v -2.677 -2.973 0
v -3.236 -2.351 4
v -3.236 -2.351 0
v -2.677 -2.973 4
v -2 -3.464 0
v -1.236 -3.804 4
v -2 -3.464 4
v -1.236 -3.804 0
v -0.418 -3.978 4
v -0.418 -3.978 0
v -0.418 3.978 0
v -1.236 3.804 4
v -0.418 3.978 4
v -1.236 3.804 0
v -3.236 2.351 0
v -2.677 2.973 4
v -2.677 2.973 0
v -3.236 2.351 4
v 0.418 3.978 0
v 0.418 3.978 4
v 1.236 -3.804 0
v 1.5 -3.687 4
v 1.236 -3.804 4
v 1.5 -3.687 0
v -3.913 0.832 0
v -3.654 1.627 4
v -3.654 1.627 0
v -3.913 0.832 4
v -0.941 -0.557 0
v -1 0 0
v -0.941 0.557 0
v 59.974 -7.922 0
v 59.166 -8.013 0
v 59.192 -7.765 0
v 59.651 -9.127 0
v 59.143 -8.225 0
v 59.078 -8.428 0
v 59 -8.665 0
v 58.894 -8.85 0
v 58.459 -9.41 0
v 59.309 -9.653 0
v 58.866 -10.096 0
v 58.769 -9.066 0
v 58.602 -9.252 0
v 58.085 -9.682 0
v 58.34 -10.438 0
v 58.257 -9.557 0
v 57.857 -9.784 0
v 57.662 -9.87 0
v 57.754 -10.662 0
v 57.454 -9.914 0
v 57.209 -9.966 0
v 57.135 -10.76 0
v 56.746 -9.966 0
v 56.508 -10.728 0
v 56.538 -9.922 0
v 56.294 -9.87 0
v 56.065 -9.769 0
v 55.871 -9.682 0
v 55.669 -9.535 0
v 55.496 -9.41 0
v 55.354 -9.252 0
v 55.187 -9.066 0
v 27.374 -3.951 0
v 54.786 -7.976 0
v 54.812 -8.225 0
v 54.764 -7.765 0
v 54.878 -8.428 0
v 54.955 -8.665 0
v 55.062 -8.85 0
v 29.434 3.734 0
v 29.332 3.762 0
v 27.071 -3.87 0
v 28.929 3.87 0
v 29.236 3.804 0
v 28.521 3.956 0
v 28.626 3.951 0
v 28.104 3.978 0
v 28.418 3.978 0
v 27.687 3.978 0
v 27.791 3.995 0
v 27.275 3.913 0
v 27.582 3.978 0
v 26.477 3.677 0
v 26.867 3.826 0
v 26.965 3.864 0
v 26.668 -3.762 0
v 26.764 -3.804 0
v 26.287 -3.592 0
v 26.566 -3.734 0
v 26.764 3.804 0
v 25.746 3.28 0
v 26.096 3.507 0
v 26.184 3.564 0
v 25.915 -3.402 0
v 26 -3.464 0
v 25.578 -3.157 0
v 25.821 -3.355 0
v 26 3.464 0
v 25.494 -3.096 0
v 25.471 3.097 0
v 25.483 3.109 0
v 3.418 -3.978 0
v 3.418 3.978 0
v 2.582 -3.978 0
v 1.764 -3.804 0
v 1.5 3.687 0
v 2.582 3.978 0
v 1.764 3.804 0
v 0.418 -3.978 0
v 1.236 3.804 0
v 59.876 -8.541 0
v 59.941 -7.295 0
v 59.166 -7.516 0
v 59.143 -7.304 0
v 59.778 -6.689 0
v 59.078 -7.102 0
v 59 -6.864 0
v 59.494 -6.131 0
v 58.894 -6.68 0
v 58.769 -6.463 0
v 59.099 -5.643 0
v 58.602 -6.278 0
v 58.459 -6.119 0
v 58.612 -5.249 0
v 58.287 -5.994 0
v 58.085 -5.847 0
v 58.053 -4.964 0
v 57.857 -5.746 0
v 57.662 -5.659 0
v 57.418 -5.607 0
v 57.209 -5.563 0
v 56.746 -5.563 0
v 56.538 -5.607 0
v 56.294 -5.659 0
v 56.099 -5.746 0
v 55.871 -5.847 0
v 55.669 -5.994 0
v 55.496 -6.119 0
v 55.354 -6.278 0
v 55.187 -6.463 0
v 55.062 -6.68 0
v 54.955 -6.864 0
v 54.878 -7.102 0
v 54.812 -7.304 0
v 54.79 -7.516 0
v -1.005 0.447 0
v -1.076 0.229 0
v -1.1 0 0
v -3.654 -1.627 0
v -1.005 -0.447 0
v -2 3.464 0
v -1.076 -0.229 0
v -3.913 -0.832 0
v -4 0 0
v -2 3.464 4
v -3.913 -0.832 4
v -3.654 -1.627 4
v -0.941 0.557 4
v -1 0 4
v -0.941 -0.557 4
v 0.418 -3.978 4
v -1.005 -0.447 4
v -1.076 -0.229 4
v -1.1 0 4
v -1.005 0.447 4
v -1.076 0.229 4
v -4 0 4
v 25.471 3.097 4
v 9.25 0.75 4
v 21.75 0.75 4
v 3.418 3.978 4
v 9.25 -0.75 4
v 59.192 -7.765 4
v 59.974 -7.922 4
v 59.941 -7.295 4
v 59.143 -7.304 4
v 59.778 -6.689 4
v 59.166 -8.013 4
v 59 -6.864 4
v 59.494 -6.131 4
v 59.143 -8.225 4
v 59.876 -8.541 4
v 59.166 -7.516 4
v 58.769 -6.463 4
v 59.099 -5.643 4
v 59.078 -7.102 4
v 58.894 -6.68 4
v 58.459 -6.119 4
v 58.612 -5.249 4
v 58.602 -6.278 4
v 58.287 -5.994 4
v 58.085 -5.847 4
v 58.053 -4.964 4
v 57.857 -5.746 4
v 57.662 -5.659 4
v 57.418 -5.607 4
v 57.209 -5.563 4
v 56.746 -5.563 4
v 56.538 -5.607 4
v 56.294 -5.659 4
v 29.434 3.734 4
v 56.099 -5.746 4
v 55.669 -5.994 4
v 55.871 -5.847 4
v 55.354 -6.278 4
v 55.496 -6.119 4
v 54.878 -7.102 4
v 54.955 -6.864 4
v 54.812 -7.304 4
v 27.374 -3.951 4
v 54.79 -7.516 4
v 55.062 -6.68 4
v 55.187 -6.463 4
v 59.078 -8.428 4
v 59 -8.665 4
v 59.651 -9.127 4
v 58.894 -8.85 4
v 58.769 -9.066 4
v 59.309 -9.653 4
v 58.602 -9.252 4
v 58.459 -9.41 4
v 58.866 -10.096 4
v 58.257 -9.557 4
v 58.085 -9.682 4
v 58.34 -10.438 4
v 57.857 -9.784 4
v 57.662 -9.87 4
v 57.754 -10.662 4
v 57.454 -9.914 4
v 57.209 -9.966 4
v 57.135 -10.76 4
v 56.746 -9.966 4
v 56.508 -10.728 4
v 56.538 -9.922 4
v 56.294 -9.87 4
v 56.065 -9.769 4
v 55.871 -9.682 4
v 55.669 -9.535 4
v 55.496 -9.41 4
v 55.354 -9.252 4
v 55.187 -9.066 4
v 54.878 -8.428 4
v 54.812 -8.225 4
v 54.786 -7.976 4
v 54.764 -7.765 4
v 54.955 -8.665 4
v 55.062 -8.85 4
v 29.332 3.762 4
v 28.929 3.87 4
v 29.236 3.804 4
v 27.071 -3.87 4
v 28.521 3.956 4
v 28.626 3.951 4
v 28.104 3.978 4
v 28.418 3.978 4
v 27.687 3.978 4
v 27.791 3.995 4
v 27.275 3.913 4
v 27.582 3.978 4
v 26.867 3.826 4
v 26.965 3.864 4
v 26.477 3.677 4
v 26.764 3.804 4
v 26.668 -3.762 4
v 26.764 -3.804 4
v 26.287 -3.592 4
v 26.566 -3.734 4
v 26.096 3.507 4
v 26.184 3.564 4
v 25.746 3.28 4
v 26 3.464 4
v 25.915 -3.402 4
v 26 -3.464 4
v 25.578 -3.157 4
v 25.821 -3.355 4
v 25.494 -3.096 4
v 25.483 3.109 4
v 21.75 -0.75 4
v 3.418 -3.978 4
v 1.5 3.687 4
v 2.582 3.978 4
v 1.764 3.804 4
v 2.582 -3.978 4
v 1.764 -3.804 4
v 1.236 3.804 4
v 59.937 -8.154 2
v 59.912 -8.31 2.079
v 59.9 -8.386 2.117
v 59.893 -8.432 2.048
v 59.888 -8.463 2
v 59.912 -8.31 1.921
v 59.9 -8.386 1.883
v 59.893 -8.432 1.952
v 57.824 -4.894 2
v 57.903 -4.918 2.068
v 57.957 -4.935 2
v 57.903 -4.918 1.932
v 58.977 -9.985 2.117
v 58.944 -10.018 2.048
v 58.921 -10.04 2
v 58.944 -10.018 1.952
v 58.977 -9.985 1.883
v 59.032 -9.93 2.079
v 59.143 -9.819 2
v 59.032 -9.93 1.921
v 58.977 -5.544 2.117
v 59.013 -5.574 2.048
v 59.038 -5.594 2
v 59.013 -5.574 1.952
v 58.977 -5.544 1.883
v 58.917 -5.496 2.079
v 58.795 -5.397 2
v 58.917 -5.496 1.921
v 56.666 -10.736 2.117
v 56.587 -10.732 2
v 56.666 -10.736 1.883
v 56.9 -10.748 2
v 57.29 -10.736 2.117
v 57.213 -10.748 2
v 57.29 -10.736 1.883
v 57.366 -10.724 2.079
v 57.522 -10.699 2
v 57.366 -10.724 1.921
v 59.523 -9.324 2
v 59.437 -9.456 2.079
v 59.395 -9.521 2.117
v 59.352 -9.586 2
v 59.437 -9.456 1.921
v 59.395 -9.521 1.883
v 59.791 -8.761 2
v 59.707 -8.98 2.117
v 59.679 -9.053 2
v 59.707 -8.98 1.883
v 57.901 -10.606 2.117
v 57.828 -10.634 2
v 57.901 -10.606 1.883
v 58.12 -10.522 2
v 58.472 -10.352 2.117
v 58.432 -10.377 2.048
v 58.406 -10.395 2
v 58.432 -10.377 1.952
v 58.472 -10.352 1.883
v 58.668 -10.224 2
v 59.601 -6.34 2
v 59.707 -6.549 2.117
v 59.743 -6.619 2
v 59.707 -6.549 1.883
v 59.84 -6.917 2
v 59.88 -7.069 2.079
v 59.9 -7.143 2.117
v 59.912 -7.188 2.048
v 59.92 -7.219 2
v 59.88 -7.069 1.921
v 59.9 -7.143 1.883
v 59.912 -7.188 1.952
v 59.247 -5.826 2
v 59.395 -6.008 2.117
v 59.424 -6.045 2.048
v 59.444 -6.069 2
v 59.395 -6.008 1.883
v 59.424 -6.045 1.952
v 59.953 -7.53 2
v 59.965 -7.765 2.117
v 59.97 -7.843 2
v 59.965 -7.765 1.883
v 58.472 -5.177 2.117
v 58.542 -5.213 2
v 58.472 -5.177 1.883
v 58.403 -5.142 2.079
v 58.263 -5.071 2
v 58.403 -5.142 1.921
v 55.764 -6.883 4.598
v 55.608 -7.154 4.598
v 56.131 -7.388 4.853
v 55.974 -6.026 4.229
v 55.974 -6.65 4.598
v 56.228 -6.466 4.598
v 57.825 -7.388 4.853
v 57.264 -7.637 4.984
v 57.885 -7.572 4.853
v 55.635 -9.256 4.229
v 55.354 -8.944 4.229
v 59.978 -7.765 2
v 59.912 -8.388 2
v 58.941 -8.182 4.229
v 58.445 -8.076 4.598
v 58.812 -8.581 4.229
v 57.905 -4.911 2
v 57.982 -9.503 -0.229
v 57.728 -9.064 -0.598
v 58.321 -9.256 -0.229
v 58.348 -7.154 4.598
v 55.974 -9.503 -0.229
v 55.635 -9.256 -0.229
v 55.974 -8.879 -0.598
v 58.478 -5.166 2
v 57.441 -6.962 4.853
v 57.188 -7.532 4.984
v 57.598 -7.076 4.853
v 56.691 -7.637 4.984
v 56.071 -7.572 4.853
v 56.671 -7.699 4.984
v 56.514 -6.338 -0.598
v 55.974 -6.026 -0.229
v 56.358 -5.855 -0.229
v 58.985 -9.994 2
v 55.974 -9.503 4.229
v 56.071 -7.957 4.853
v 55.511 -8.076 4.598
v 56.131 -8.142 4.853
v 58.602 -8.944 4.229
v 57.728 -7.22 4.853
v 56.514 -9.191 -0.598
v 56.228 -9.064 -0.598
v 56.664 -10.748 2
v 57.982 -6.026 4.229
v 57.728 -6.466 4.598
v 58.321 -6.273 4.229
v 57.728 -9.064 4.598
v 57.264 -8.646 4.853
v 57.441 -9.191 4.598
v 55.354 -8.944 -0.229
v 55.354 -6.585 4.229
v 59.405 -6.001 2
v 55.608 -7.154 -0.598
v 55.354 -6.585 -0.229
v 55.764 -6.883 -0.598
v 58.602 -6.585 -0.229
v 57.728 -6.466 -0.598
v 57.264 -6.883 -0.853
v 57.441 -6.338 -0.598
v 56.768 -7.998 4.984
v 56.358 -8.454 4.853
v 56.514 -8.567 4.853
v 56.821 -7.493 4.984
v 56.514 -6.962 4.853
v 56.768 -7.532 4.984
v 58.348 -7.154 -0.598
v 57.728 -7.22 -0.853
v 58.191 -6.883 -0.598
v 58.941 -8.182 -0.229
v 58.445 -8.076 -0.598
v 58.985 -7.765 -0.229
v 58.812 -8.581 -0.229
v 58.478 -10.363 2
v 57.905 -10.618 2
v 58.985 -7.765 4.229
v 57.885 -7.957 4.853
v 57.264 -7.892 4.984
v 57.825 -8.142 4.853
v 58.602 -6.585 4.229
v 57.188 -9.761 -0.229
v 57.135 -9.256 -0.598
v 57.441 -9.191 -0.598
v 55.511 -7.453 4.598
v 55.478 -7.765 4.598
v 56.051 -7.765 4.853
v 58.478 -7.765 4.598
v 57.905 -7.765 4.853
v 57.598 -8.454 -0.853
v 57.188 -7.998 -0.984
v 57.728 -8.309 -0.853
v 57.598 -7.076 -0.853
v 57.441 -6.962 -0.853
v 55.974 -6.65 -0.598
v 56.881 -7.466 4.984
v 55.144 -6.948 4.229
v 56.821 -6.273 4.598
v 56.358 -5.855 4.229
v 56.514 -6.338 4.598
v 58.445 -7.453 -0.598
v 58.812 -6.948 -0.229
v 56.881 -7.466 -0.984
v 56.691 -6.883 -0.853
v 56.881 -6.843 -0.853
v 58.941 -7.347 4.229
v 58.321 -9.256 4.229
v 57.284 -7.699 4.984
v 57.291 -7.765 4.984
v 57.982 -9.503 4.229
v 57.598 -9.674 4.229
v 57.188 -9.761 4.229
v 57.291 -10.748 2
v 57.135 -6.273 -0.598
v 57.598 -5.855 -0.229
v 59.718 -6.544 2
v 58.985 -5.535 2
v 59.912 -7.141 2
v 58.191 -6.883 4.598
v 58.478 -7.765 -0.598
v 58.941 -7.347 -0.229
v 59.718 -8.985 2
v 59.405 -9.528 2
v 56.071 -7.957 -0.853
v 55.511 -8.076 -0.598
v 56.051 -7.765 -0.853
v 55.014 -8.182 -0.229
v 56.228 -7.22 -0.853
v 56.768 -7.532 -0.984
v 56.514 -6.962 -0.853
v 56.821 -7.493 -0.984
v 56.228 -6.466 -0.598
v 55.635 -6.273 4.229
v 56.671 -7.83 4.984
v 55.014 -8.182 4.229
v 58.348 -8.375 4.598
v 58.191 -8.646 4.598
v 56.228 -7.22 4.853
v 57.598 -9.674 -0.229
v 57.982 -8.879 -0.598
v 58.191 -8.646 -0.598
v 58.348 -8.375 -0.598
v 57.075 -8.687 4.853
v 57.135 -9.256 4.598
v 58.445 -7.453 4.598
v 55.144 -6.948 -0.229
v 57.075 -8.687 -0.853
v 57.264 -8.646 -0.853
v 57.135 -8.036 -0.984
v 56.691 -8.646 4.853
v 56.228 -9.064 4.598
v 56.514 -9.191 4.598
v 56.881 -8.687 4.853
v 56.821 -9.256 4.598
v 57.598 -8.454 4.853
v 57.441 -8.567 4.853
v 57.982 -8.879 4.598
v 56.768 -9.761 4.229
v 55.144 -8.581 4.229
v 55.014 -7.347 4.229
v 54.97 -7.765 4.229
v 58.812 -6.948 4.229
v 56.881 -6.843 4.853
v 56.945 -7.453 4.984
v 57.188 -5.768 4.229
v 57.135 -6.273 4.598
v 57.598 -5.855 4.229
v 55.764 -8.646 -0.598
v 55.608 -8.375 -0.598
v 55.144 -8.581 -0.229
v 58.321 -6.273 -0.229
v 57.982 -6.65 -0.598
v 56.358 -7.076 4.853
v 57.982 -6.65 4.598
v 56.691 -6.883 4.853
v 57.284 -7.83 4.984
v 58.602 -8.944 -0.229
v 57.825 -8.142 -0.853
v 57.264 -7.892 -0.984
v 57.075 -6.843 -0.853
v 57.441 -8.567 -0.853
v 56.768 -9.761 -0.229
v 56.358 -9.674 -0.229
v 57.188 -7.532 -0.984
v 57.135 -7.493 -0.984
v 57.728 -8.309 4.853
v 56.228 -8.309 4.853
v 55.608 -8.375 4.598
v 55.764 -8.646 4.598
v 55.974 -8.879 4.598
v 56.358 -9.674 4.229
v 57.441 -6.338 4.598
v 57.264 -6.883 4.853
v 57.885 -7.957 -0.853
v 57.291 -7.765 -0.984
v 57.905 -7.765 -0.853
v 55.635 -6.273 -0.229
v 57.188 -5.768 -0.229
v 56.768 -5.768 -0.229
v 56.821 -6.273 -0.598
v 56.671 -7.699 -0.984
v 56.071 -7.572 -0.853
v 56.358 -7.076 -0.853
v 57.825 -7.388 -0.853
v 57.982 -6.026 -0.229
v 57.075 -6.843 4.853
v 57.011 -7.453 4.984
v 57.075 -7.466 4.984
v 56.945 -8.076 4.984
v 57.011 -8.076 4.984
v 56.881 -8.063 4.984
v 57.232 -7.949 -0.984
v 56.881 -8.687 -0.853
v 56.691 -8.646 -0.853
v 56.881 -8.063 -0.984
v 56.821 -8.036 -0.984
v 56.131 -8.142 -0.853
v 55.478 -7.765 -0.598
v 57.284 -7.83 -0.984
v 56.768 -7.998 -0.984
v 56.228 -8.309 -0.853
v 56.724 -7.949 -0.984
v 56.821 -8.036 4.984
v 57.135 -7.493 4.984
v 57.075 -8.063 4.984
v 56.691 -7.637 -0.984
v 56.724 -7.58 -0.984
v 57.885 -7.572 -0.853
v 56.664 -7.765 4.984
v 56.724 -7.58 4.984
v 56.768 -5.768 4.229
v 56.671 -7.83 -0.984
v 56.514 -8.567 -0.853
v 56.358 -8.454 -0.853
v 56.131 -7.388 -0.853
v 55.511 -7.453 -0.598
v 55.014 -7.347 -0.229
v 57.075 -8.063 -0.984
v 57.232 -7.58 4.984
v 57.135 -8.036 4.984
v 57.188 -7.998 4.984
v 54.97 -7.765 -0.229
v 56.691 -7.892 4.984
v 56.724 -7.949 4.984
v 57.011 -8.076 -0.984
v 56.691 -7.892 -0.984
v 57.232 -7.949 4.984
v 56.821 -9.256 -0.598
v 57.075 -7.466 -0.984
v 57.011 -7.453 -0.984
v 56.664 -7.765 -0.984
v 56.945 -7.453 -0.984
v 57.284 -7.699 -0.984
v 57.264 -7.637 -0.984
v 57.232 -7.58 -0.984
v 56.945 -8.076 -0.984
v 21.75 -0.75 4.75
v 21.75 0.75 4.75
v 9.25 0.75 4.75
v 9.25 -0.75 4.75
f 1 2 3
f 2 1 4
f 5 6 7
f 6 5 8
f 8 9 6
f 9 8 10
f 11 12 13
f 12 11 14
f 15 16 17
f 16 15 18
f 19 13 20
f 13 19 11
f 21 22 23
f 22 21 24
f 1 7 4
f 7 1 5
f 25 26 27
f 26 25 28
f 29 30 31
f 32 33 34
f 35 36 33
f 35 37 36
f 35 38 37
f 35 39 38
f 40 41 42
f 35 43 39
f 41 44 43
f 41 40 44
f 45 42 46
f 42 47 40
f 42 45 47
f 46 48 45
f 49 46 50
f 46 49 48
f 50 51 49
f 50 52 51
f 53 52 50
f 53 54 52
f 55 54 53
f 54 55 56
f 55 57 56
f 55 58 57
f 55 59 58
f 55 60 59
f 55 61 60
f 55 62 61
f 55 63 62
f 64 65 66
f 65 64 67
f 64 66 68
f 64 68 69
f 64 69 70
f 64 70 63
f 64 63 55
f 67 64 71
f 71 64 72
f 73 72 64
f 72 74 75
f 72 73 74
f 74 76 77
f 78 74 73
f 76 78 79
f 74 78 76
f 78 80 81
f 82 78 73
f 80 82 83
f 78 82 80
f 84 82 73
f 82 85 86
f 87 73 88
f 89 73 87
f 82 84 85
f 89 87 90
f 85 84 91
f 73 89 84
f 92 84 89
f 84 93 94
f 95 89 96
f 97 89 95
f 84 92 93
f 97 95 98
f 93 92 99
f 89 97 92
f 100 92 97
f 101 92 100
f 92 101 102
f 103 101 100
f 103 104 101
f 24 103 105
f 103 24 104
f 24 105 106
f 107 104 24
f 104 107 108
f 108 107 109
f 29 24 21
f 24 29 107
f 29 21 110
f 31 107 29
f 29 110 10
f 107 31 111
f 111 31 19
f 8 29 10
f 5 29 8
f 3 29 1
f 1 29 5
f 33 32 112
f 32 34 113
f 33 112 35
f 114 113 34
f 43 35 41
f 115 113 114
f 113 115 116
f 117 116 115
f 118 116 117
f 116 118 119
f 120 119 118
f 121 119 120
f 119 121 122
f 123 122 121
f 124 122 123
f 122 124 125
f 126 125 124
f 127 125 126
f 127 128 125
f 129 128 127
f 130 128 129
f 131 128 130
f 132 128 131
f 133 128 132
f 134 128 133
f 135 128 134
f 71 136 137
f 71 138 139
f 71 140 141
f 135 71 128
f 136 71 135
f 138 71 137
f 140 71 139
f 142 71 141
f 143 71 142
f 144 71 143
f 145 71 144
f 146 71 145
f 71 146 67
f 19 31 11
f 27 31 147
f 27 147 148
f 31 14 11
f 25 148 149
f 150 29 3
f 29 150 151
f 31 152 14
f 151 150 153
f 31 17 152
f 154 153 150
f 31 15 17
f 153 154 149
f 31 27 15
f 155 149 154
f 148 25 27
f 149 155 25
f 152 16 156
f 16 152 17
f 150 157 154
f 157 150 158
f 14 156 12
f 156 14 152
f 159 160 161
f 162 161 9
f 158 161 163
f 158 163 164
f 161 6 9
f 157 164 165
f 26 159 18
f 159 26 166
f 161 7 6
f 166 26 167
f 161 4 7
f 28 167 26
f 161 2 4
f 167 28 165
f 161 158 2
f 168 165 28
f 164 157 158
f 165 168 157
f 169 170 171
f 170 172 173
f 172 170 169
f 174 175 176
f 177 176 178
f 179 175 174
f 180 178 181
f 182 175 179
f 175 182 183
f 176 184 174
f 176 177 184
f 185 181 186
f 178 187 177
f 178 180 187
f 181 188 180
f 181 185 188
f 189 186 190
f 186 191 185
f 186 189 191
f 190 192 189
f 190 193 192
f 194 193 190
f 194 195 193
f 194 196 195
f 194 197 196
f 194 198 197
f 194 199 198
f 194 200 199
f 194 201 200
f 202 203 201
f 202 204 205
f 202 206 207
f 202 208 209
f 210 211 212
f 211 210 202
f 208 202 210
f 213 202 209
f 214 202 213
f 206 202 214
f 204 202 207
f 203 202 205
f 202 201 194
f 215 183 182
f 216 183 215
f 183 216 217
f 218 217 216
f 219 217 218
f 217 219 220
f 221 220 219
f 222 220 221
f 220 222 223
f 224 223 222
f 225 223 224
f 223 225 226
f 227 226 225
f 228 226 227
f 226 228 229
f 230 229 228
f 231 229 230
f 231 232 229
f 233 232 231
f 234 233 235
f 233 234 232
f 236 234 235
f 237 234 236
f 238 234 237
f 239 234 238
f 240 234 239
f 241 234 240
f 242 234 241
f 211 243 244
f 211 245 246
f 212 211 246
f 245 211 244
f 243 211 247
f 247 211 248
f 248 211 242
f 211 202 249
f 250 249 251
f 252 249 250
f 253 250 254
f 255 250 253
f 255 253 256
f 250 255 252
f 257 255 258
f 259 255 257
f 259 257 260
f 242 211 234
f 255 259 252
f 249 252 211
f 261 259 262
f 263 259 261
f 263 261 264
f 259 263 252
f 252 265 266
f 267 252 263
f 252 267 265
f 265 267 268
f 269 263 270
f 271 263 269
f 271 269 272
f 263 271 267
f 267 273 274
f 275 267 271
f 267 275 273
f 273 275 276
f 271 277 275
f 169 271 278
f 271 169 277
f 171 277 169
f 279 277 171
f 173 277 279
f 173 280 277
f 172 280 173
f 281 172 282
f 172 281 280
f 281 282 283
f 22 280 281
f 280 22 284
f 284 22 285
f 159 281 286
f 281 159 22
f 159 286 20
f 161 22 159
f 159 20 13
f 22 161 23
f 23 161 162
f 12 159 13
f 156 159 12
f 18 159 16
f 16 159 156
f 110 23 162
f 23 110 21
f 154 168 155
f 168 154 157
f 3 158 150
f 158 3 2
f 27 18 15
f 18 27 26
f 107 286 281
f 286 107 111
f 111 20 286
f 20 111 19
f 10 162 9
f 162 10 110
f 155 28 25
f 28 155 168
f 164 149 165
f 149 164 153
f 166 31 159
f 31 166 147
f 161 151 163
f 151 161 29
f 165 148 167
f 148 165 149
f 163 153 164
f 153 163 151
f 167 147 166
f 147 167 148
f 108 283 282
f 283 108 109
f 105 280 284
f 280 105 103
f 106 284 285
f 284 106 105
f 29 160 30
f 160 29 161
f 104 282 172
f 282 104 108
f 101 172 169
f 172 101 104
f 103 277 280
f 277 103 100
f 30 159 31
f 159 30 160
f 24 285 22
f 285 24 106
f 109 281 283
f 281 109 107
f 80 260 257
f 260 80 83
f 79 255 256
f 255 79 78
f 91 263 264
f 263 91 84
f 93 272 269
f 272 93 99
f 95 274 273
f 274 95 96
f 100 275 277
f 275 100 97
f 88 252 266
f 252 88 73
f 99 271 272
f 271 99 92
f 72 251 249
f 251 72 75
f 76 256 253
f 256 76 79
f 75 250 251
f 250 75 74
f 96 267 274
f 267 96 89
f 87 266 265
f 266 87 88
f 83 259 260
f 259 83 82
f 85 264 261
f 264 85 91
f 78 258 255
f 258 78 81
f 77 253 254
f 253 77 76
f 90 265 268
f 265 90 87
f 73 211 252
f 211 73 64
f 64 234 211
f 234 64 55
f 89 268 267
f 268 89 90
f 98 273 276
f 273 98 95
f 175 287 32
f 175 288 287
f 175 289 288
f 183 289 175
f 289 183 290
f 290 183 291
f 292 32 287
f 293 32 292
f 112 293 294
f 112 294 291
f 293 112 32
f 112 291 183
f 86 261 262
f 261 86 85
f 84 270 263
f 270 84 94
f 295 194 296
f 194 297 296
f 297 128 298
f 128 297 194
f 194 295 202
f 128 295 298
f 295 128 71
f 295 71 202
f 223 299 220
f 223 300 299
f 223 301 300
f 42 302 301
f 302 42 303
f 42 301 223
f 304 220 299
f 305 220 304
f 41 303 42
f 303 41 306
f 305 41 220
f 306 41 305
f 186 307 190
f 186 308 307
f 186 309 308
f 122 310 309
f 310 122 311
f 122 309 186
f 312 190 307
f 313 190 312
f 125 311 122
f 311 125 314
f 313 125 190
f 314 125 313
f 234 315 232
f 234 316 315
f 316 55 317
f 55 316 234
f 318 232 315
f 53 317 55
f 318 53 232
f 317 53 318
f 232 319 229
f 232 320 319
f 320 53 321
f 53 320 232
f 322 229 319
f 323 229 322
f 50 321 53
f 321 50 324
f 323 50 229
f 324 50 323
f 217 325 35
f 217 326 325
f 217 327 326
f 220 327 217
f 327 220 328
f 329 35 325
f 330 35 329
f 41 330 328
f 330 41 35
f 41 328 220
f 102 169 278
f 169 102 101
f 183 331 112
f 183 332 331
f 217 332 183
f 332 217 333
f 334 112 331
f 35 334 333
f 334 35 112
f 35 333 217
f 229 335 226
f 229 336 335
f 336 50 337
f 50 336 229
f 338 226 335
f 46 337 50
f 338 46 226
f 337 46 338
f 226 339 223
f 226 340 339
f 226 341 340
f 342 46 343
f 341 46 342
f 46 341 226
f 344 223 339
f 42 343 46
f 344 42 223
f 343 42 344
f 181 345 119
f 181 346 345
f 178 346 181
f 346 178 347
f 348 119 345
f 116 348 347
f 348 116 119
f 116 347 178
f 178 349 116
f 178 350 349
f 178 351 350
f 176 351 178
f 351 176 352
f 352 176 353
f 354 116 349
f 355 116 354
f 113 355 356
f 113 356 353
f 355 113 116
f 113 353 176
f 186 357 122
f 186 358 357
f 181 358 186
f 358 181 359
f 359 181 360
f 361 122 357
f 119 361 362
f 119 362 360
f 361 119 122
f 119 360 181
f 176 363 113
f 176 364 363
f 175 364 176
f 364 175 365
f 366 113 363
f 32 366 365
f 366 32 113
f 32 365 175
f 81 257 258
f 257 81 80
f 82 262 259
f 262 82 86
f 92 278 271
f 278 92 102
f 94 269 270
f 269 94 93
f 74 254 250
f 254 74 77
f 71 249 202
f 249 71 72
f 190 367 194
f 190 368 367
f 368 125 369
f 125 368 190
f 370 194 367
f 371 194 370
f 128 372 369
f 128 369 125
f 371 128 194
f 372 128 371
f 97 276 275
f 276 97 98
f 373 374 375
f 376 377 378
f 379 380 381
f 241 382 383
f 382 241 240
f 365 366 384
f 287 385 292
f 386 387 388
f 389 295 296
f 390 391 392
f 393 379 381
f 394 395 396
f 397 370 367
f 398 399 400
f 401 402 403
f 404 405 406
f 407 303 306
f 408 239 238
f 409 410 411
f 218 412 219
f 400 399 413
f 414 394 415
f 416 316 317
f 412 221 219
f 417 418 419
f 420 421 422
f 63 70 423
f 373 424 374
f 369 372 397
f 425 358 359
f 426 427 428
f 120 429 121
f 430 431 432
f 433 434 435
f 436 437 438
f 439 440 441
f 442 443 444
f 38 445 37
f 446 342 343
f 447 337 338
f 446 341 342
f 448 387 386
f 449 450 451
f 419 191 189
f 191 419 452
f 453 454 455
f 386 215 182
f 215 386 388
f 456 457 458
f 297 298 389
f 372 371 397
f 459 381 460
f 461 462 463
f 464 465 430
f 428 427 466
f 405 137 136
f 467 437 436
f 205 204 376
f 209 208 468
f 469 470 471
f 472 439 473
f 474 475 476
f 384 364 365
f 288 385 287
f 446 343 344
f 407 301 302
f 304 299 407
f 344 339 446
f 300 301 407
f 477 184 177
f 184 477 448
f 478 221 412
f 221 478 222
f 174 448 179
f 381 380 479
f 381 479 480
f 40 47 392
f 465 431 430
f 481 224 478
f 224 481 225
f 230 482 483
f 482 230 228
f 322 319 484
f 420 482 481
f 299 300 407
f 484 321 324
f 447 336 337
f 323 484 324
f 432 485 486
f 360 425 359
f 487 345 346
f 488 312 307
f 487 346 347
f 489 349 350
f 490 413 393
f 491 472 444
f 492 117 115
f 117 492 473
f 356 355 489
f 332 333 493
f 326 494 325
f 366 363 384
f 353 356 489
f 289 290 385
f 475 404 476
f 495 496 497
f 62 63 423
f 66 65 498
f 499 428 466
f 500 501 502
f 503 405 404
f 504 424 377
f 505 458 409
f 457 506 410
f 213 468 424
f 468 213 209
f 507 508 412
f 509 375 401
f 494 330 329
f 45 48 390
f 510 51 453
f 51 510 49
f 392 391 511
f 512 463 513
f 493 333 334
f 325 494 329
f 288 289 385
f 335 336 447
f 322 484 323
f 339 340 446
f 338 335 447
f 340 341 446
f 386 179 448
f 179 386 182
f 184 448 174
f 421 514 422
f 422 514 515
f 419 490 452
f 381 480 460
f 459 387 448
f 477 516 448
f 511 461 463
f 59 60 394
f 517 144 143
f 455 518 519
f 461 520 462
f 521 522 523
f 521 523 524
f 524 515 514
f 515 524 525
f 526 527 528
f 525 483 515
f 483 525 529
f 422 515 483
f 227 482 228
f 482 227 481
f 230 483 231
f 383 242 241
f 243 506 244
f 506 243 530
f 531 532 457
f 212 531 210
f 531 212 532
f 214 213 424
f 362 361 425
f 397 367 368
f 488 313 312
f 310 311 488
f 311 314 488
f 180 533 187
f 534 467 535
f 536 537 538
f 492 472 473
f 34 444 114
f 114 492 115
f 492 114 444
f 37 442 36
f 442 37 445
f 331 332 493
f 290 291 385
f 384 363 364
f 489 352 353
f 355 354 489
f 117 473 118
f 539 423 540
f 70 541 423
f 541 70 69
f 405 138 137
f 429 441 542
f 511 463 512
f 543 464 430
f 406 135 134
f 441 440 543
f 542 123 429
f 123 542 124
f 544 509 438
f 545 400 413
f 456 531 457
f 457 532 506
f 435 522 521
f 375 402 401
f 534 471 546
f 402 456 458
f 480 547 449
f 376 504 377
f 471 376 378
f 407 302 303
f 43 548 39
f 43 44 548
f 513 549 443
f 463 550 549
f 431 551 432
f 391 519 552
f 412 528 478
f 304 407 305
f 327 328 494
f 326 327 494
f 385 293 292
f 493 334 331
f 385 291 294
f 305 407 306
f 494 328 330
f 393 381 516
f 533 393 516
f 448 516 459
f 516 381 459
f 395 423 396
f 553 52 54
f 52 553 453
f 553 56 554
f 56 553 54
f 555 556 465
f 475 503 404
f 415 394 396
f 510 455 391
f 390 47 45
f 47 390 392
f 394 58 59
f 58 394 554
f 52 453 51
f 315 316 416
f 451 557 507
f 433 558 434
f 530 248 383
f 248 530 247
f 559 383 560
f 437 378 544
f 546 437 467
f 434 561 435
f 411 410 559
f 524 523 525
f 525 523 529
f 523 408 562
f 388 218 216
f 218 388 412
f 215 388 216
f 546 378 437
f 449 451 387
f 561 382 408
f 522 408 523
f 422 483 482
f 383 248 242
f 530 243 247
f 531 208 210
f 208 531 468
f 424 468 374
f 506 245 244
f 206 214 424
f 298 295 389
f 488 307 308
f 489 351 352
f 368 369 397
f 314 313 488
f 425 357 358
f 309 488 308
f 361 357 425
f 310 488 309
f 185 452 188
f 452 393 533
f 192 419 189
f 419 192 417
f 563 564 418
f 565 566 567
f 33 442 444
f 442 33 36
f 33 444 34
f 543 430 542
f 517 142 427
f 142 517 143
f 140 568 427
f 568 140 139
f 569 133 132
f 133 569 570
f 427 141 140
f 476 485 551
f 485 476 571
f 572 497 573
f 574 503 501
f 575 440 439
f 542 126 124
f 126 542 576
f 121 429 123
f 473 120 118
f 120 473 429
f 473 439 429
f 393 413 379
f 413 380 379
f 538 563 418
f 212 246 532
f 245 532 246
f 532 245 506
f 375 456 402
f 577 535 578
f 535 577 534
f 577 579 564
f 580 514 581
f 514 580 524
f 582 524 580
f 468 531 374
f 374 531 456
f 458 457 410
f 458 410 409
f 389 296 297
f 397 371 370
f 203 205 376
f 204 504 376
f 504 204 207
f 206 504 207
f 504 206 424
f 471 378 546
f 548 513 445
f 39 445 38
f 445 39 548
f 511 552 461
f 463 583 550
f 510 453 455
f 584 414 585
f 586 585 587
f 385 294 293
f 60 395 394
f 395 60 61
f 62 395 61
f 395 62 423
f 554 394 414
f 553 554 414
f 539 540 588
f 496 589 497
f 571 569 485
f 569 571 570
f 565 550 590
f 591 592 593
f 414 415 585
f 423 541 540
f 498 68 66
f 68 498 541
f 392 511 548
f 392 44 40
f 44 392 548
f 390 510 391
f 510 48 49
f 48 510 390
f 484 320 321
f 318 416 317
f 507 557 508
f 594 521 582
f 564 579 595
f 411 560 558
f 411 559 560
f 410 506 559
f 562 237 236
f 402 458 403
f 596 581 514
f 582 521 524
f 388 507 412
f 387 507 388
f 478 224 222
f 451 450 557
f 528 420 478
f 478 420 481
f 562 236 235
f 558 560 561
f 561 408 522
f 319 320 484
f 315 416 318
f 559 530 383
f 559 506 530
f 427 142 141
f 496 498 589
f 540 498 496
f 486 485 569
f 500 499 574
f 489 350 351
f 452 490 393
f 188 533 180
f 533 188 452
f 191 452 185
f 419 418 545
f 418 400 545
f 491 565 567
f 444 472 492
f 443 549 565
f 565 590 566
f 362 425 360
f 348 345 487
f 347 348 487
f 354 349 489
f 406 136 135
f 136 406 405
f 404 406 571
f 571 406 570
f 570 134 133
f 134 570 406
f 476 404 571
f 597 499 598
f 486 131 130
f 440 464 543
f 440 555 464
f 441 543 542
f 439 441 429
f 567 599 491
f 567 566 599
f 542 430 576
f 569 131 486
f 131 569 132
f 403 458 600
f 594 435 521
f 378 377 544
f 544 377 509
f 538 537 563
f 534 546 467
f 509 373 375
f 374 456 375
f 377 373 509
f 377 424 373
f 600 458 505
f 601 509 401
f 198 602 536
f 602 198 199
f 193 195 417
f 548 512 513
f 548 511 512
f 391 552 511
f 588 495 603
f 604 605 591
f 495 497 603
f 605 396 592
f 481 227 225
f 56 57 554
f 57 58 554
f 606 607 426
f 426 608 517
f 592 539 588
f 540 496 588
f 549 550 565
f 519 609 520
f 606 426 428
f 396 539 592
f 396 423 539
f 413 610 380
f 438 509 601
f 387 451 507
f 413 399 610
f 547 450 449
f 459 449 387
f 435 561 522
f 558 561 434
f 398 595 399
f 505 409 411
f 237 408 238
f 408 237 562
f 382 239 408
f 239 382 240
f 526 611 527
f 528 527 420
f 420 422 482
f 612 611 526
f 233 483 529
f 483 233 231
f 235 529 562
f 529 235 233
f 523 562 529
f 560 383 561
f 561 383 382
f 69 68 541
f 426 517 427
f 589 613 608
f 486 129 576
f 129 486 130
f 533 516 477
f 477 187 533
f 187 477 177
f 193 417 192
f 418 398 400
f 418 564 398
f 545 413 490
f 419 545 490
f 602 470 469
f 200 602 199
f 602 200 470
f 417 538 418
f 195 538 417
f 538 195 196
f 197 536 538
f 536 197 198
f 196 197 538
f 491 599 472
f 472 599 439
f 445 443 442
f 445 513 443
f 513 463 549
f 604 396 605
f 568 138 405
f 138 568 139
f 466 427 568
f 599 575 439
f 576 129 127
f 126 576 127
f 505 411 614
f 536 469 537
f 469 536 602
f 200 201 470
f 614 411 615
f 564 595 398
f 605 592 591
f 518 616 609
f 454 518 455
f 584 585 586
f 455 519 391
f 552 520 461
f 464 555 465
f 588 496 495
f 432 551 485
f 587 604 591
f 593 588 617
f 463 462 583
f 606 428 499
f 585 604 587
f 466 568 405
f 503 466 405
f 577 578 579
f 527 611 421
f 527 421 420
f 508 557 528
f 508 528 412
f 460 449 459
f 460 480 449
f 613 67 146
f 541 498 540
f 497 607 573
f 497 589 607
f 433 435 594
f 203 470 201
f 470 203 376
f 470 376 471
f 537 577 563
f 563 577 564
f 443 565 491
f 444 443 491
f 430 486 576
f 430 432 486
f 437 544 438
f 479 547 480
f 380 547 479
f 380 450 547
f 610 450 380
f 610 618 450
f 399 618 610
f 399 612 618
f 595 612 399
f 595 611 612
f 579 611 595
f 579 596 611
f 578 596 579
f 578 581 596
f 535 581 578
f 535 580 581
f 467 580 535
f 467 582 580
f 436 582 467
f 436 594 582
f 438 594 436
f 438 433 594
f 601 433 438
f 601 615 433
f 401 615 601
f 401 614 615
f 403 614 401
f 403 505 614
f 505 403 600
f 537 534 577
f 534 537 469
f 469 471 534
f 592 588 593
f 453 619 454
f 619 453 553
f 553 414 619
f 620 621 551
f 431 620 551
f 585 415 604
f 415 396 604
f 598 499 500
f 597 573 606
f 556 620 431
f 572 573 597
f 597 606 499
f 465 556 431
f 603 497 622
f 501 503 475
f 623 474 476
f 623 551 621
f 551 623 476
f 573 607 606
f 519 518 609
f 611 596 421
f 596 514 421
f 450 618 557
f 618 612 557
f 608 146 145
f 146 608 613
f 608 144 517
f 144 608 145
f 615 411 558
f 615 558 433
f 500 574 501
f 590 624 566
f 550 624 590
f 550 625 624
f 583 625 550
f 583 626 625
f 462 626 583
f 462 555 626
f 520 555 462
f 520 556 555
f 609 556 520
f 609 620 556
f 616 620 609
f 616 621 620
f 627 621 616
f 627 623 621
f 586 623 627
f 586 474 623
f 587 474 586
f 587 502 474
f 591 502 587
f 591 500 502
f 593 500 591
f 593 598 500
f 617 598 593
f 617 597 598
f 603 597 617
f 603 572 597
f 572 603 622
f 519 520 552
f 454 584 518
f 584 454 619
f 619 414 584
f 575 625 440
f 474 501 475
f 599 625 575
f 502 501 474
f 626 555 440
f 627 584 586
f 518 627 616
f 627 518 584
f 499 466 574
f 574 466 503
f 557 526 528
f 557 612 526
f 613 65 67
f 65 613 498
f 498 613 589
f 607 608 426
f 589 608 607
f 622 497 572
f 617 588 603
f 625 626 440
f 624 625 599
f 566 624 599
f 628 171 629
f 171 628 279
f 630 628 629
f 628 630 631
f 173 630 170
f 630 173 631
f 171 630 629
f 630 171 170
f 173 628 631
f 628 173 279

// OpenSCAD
// Hexapod Walker - Leg (参数化腿部件)
// RealWorldClaw Reference Design #2
$fn = 30;

// === Parameters (调整这些来改变腿长) ===
thigh_length = 25;        // 大腿长度
shin_length = 30;         // 小腿长度
leg_width = 8;            // 腿宽度
leg_thick = 4;            // 腿厚度

// 舵机摇臂接口
horn_hole_r = 1.1;        // 摇臂中心孔
horn_screw_r = 0.8;       // 固定螺丝孔
horn_boss_r = 4;          // 摇臂连接凸台

// 足尖
foot_r = 3;               // 足尖球半径
foot_angle = 15;          // 足尖弯曲角度

// === Modules ===
module horn_connector() {
    difference() {
        cylinder(r=horn_boss_r, h=leg_thick);
        // 摇臂中心孔
        translate([0, 0, -1])
            cylinder(r=horn_hole_r, h=leg_thick + 2);
        // 固定螺丝孔
        translate([0, 0, -1])
            cylinder(r=horn_screw_r, h=leg_thick + 2);
    }
}

module leg_segment(length) {
    hull() {
        translate([0, 0, 0])
            cylinder(r=leg_width/2, h=leg_thick);
        translate([length, 0, 0])
            cylinder(r=leg_width/2 - 1, h=leg_thick);
    }
}

module foot_tip() {
    sphere(r=foot_r);
}

// === Assembly ===
// 摇臂连接部
horn_connector();

// 大腿
translate([horn_boss_r - 1, 0, 0])
    leg_segment(thigh_length);

// 膝关节加强
translate([horn_boss_r - 1 + thigh_length, 0, 0])
    cylinder(r=leg_width/2, h=leg_thick);

// 小腿（向下弯曲一点角度）
translate([horn_boss_r - 1 + thigh_length, 0, 0])
    rotate([0, 0, -foot_angle])
        leg_segment(shin_length);

// 足尖（球形，增加抓地力）
translate([
    horn_boss_r - 1 + thigh_length + shin_length * cos(foot_angle),
    -shin_length * sin(foot_angle),
    leg_thick / 2
])
    foot_tip();

// 加强筋
translate([horn_boss_r - 1 + thigh_length/2, 0, leg_thick])
    cube([thigh_length/2, 1.5, 1.5], center=true);
